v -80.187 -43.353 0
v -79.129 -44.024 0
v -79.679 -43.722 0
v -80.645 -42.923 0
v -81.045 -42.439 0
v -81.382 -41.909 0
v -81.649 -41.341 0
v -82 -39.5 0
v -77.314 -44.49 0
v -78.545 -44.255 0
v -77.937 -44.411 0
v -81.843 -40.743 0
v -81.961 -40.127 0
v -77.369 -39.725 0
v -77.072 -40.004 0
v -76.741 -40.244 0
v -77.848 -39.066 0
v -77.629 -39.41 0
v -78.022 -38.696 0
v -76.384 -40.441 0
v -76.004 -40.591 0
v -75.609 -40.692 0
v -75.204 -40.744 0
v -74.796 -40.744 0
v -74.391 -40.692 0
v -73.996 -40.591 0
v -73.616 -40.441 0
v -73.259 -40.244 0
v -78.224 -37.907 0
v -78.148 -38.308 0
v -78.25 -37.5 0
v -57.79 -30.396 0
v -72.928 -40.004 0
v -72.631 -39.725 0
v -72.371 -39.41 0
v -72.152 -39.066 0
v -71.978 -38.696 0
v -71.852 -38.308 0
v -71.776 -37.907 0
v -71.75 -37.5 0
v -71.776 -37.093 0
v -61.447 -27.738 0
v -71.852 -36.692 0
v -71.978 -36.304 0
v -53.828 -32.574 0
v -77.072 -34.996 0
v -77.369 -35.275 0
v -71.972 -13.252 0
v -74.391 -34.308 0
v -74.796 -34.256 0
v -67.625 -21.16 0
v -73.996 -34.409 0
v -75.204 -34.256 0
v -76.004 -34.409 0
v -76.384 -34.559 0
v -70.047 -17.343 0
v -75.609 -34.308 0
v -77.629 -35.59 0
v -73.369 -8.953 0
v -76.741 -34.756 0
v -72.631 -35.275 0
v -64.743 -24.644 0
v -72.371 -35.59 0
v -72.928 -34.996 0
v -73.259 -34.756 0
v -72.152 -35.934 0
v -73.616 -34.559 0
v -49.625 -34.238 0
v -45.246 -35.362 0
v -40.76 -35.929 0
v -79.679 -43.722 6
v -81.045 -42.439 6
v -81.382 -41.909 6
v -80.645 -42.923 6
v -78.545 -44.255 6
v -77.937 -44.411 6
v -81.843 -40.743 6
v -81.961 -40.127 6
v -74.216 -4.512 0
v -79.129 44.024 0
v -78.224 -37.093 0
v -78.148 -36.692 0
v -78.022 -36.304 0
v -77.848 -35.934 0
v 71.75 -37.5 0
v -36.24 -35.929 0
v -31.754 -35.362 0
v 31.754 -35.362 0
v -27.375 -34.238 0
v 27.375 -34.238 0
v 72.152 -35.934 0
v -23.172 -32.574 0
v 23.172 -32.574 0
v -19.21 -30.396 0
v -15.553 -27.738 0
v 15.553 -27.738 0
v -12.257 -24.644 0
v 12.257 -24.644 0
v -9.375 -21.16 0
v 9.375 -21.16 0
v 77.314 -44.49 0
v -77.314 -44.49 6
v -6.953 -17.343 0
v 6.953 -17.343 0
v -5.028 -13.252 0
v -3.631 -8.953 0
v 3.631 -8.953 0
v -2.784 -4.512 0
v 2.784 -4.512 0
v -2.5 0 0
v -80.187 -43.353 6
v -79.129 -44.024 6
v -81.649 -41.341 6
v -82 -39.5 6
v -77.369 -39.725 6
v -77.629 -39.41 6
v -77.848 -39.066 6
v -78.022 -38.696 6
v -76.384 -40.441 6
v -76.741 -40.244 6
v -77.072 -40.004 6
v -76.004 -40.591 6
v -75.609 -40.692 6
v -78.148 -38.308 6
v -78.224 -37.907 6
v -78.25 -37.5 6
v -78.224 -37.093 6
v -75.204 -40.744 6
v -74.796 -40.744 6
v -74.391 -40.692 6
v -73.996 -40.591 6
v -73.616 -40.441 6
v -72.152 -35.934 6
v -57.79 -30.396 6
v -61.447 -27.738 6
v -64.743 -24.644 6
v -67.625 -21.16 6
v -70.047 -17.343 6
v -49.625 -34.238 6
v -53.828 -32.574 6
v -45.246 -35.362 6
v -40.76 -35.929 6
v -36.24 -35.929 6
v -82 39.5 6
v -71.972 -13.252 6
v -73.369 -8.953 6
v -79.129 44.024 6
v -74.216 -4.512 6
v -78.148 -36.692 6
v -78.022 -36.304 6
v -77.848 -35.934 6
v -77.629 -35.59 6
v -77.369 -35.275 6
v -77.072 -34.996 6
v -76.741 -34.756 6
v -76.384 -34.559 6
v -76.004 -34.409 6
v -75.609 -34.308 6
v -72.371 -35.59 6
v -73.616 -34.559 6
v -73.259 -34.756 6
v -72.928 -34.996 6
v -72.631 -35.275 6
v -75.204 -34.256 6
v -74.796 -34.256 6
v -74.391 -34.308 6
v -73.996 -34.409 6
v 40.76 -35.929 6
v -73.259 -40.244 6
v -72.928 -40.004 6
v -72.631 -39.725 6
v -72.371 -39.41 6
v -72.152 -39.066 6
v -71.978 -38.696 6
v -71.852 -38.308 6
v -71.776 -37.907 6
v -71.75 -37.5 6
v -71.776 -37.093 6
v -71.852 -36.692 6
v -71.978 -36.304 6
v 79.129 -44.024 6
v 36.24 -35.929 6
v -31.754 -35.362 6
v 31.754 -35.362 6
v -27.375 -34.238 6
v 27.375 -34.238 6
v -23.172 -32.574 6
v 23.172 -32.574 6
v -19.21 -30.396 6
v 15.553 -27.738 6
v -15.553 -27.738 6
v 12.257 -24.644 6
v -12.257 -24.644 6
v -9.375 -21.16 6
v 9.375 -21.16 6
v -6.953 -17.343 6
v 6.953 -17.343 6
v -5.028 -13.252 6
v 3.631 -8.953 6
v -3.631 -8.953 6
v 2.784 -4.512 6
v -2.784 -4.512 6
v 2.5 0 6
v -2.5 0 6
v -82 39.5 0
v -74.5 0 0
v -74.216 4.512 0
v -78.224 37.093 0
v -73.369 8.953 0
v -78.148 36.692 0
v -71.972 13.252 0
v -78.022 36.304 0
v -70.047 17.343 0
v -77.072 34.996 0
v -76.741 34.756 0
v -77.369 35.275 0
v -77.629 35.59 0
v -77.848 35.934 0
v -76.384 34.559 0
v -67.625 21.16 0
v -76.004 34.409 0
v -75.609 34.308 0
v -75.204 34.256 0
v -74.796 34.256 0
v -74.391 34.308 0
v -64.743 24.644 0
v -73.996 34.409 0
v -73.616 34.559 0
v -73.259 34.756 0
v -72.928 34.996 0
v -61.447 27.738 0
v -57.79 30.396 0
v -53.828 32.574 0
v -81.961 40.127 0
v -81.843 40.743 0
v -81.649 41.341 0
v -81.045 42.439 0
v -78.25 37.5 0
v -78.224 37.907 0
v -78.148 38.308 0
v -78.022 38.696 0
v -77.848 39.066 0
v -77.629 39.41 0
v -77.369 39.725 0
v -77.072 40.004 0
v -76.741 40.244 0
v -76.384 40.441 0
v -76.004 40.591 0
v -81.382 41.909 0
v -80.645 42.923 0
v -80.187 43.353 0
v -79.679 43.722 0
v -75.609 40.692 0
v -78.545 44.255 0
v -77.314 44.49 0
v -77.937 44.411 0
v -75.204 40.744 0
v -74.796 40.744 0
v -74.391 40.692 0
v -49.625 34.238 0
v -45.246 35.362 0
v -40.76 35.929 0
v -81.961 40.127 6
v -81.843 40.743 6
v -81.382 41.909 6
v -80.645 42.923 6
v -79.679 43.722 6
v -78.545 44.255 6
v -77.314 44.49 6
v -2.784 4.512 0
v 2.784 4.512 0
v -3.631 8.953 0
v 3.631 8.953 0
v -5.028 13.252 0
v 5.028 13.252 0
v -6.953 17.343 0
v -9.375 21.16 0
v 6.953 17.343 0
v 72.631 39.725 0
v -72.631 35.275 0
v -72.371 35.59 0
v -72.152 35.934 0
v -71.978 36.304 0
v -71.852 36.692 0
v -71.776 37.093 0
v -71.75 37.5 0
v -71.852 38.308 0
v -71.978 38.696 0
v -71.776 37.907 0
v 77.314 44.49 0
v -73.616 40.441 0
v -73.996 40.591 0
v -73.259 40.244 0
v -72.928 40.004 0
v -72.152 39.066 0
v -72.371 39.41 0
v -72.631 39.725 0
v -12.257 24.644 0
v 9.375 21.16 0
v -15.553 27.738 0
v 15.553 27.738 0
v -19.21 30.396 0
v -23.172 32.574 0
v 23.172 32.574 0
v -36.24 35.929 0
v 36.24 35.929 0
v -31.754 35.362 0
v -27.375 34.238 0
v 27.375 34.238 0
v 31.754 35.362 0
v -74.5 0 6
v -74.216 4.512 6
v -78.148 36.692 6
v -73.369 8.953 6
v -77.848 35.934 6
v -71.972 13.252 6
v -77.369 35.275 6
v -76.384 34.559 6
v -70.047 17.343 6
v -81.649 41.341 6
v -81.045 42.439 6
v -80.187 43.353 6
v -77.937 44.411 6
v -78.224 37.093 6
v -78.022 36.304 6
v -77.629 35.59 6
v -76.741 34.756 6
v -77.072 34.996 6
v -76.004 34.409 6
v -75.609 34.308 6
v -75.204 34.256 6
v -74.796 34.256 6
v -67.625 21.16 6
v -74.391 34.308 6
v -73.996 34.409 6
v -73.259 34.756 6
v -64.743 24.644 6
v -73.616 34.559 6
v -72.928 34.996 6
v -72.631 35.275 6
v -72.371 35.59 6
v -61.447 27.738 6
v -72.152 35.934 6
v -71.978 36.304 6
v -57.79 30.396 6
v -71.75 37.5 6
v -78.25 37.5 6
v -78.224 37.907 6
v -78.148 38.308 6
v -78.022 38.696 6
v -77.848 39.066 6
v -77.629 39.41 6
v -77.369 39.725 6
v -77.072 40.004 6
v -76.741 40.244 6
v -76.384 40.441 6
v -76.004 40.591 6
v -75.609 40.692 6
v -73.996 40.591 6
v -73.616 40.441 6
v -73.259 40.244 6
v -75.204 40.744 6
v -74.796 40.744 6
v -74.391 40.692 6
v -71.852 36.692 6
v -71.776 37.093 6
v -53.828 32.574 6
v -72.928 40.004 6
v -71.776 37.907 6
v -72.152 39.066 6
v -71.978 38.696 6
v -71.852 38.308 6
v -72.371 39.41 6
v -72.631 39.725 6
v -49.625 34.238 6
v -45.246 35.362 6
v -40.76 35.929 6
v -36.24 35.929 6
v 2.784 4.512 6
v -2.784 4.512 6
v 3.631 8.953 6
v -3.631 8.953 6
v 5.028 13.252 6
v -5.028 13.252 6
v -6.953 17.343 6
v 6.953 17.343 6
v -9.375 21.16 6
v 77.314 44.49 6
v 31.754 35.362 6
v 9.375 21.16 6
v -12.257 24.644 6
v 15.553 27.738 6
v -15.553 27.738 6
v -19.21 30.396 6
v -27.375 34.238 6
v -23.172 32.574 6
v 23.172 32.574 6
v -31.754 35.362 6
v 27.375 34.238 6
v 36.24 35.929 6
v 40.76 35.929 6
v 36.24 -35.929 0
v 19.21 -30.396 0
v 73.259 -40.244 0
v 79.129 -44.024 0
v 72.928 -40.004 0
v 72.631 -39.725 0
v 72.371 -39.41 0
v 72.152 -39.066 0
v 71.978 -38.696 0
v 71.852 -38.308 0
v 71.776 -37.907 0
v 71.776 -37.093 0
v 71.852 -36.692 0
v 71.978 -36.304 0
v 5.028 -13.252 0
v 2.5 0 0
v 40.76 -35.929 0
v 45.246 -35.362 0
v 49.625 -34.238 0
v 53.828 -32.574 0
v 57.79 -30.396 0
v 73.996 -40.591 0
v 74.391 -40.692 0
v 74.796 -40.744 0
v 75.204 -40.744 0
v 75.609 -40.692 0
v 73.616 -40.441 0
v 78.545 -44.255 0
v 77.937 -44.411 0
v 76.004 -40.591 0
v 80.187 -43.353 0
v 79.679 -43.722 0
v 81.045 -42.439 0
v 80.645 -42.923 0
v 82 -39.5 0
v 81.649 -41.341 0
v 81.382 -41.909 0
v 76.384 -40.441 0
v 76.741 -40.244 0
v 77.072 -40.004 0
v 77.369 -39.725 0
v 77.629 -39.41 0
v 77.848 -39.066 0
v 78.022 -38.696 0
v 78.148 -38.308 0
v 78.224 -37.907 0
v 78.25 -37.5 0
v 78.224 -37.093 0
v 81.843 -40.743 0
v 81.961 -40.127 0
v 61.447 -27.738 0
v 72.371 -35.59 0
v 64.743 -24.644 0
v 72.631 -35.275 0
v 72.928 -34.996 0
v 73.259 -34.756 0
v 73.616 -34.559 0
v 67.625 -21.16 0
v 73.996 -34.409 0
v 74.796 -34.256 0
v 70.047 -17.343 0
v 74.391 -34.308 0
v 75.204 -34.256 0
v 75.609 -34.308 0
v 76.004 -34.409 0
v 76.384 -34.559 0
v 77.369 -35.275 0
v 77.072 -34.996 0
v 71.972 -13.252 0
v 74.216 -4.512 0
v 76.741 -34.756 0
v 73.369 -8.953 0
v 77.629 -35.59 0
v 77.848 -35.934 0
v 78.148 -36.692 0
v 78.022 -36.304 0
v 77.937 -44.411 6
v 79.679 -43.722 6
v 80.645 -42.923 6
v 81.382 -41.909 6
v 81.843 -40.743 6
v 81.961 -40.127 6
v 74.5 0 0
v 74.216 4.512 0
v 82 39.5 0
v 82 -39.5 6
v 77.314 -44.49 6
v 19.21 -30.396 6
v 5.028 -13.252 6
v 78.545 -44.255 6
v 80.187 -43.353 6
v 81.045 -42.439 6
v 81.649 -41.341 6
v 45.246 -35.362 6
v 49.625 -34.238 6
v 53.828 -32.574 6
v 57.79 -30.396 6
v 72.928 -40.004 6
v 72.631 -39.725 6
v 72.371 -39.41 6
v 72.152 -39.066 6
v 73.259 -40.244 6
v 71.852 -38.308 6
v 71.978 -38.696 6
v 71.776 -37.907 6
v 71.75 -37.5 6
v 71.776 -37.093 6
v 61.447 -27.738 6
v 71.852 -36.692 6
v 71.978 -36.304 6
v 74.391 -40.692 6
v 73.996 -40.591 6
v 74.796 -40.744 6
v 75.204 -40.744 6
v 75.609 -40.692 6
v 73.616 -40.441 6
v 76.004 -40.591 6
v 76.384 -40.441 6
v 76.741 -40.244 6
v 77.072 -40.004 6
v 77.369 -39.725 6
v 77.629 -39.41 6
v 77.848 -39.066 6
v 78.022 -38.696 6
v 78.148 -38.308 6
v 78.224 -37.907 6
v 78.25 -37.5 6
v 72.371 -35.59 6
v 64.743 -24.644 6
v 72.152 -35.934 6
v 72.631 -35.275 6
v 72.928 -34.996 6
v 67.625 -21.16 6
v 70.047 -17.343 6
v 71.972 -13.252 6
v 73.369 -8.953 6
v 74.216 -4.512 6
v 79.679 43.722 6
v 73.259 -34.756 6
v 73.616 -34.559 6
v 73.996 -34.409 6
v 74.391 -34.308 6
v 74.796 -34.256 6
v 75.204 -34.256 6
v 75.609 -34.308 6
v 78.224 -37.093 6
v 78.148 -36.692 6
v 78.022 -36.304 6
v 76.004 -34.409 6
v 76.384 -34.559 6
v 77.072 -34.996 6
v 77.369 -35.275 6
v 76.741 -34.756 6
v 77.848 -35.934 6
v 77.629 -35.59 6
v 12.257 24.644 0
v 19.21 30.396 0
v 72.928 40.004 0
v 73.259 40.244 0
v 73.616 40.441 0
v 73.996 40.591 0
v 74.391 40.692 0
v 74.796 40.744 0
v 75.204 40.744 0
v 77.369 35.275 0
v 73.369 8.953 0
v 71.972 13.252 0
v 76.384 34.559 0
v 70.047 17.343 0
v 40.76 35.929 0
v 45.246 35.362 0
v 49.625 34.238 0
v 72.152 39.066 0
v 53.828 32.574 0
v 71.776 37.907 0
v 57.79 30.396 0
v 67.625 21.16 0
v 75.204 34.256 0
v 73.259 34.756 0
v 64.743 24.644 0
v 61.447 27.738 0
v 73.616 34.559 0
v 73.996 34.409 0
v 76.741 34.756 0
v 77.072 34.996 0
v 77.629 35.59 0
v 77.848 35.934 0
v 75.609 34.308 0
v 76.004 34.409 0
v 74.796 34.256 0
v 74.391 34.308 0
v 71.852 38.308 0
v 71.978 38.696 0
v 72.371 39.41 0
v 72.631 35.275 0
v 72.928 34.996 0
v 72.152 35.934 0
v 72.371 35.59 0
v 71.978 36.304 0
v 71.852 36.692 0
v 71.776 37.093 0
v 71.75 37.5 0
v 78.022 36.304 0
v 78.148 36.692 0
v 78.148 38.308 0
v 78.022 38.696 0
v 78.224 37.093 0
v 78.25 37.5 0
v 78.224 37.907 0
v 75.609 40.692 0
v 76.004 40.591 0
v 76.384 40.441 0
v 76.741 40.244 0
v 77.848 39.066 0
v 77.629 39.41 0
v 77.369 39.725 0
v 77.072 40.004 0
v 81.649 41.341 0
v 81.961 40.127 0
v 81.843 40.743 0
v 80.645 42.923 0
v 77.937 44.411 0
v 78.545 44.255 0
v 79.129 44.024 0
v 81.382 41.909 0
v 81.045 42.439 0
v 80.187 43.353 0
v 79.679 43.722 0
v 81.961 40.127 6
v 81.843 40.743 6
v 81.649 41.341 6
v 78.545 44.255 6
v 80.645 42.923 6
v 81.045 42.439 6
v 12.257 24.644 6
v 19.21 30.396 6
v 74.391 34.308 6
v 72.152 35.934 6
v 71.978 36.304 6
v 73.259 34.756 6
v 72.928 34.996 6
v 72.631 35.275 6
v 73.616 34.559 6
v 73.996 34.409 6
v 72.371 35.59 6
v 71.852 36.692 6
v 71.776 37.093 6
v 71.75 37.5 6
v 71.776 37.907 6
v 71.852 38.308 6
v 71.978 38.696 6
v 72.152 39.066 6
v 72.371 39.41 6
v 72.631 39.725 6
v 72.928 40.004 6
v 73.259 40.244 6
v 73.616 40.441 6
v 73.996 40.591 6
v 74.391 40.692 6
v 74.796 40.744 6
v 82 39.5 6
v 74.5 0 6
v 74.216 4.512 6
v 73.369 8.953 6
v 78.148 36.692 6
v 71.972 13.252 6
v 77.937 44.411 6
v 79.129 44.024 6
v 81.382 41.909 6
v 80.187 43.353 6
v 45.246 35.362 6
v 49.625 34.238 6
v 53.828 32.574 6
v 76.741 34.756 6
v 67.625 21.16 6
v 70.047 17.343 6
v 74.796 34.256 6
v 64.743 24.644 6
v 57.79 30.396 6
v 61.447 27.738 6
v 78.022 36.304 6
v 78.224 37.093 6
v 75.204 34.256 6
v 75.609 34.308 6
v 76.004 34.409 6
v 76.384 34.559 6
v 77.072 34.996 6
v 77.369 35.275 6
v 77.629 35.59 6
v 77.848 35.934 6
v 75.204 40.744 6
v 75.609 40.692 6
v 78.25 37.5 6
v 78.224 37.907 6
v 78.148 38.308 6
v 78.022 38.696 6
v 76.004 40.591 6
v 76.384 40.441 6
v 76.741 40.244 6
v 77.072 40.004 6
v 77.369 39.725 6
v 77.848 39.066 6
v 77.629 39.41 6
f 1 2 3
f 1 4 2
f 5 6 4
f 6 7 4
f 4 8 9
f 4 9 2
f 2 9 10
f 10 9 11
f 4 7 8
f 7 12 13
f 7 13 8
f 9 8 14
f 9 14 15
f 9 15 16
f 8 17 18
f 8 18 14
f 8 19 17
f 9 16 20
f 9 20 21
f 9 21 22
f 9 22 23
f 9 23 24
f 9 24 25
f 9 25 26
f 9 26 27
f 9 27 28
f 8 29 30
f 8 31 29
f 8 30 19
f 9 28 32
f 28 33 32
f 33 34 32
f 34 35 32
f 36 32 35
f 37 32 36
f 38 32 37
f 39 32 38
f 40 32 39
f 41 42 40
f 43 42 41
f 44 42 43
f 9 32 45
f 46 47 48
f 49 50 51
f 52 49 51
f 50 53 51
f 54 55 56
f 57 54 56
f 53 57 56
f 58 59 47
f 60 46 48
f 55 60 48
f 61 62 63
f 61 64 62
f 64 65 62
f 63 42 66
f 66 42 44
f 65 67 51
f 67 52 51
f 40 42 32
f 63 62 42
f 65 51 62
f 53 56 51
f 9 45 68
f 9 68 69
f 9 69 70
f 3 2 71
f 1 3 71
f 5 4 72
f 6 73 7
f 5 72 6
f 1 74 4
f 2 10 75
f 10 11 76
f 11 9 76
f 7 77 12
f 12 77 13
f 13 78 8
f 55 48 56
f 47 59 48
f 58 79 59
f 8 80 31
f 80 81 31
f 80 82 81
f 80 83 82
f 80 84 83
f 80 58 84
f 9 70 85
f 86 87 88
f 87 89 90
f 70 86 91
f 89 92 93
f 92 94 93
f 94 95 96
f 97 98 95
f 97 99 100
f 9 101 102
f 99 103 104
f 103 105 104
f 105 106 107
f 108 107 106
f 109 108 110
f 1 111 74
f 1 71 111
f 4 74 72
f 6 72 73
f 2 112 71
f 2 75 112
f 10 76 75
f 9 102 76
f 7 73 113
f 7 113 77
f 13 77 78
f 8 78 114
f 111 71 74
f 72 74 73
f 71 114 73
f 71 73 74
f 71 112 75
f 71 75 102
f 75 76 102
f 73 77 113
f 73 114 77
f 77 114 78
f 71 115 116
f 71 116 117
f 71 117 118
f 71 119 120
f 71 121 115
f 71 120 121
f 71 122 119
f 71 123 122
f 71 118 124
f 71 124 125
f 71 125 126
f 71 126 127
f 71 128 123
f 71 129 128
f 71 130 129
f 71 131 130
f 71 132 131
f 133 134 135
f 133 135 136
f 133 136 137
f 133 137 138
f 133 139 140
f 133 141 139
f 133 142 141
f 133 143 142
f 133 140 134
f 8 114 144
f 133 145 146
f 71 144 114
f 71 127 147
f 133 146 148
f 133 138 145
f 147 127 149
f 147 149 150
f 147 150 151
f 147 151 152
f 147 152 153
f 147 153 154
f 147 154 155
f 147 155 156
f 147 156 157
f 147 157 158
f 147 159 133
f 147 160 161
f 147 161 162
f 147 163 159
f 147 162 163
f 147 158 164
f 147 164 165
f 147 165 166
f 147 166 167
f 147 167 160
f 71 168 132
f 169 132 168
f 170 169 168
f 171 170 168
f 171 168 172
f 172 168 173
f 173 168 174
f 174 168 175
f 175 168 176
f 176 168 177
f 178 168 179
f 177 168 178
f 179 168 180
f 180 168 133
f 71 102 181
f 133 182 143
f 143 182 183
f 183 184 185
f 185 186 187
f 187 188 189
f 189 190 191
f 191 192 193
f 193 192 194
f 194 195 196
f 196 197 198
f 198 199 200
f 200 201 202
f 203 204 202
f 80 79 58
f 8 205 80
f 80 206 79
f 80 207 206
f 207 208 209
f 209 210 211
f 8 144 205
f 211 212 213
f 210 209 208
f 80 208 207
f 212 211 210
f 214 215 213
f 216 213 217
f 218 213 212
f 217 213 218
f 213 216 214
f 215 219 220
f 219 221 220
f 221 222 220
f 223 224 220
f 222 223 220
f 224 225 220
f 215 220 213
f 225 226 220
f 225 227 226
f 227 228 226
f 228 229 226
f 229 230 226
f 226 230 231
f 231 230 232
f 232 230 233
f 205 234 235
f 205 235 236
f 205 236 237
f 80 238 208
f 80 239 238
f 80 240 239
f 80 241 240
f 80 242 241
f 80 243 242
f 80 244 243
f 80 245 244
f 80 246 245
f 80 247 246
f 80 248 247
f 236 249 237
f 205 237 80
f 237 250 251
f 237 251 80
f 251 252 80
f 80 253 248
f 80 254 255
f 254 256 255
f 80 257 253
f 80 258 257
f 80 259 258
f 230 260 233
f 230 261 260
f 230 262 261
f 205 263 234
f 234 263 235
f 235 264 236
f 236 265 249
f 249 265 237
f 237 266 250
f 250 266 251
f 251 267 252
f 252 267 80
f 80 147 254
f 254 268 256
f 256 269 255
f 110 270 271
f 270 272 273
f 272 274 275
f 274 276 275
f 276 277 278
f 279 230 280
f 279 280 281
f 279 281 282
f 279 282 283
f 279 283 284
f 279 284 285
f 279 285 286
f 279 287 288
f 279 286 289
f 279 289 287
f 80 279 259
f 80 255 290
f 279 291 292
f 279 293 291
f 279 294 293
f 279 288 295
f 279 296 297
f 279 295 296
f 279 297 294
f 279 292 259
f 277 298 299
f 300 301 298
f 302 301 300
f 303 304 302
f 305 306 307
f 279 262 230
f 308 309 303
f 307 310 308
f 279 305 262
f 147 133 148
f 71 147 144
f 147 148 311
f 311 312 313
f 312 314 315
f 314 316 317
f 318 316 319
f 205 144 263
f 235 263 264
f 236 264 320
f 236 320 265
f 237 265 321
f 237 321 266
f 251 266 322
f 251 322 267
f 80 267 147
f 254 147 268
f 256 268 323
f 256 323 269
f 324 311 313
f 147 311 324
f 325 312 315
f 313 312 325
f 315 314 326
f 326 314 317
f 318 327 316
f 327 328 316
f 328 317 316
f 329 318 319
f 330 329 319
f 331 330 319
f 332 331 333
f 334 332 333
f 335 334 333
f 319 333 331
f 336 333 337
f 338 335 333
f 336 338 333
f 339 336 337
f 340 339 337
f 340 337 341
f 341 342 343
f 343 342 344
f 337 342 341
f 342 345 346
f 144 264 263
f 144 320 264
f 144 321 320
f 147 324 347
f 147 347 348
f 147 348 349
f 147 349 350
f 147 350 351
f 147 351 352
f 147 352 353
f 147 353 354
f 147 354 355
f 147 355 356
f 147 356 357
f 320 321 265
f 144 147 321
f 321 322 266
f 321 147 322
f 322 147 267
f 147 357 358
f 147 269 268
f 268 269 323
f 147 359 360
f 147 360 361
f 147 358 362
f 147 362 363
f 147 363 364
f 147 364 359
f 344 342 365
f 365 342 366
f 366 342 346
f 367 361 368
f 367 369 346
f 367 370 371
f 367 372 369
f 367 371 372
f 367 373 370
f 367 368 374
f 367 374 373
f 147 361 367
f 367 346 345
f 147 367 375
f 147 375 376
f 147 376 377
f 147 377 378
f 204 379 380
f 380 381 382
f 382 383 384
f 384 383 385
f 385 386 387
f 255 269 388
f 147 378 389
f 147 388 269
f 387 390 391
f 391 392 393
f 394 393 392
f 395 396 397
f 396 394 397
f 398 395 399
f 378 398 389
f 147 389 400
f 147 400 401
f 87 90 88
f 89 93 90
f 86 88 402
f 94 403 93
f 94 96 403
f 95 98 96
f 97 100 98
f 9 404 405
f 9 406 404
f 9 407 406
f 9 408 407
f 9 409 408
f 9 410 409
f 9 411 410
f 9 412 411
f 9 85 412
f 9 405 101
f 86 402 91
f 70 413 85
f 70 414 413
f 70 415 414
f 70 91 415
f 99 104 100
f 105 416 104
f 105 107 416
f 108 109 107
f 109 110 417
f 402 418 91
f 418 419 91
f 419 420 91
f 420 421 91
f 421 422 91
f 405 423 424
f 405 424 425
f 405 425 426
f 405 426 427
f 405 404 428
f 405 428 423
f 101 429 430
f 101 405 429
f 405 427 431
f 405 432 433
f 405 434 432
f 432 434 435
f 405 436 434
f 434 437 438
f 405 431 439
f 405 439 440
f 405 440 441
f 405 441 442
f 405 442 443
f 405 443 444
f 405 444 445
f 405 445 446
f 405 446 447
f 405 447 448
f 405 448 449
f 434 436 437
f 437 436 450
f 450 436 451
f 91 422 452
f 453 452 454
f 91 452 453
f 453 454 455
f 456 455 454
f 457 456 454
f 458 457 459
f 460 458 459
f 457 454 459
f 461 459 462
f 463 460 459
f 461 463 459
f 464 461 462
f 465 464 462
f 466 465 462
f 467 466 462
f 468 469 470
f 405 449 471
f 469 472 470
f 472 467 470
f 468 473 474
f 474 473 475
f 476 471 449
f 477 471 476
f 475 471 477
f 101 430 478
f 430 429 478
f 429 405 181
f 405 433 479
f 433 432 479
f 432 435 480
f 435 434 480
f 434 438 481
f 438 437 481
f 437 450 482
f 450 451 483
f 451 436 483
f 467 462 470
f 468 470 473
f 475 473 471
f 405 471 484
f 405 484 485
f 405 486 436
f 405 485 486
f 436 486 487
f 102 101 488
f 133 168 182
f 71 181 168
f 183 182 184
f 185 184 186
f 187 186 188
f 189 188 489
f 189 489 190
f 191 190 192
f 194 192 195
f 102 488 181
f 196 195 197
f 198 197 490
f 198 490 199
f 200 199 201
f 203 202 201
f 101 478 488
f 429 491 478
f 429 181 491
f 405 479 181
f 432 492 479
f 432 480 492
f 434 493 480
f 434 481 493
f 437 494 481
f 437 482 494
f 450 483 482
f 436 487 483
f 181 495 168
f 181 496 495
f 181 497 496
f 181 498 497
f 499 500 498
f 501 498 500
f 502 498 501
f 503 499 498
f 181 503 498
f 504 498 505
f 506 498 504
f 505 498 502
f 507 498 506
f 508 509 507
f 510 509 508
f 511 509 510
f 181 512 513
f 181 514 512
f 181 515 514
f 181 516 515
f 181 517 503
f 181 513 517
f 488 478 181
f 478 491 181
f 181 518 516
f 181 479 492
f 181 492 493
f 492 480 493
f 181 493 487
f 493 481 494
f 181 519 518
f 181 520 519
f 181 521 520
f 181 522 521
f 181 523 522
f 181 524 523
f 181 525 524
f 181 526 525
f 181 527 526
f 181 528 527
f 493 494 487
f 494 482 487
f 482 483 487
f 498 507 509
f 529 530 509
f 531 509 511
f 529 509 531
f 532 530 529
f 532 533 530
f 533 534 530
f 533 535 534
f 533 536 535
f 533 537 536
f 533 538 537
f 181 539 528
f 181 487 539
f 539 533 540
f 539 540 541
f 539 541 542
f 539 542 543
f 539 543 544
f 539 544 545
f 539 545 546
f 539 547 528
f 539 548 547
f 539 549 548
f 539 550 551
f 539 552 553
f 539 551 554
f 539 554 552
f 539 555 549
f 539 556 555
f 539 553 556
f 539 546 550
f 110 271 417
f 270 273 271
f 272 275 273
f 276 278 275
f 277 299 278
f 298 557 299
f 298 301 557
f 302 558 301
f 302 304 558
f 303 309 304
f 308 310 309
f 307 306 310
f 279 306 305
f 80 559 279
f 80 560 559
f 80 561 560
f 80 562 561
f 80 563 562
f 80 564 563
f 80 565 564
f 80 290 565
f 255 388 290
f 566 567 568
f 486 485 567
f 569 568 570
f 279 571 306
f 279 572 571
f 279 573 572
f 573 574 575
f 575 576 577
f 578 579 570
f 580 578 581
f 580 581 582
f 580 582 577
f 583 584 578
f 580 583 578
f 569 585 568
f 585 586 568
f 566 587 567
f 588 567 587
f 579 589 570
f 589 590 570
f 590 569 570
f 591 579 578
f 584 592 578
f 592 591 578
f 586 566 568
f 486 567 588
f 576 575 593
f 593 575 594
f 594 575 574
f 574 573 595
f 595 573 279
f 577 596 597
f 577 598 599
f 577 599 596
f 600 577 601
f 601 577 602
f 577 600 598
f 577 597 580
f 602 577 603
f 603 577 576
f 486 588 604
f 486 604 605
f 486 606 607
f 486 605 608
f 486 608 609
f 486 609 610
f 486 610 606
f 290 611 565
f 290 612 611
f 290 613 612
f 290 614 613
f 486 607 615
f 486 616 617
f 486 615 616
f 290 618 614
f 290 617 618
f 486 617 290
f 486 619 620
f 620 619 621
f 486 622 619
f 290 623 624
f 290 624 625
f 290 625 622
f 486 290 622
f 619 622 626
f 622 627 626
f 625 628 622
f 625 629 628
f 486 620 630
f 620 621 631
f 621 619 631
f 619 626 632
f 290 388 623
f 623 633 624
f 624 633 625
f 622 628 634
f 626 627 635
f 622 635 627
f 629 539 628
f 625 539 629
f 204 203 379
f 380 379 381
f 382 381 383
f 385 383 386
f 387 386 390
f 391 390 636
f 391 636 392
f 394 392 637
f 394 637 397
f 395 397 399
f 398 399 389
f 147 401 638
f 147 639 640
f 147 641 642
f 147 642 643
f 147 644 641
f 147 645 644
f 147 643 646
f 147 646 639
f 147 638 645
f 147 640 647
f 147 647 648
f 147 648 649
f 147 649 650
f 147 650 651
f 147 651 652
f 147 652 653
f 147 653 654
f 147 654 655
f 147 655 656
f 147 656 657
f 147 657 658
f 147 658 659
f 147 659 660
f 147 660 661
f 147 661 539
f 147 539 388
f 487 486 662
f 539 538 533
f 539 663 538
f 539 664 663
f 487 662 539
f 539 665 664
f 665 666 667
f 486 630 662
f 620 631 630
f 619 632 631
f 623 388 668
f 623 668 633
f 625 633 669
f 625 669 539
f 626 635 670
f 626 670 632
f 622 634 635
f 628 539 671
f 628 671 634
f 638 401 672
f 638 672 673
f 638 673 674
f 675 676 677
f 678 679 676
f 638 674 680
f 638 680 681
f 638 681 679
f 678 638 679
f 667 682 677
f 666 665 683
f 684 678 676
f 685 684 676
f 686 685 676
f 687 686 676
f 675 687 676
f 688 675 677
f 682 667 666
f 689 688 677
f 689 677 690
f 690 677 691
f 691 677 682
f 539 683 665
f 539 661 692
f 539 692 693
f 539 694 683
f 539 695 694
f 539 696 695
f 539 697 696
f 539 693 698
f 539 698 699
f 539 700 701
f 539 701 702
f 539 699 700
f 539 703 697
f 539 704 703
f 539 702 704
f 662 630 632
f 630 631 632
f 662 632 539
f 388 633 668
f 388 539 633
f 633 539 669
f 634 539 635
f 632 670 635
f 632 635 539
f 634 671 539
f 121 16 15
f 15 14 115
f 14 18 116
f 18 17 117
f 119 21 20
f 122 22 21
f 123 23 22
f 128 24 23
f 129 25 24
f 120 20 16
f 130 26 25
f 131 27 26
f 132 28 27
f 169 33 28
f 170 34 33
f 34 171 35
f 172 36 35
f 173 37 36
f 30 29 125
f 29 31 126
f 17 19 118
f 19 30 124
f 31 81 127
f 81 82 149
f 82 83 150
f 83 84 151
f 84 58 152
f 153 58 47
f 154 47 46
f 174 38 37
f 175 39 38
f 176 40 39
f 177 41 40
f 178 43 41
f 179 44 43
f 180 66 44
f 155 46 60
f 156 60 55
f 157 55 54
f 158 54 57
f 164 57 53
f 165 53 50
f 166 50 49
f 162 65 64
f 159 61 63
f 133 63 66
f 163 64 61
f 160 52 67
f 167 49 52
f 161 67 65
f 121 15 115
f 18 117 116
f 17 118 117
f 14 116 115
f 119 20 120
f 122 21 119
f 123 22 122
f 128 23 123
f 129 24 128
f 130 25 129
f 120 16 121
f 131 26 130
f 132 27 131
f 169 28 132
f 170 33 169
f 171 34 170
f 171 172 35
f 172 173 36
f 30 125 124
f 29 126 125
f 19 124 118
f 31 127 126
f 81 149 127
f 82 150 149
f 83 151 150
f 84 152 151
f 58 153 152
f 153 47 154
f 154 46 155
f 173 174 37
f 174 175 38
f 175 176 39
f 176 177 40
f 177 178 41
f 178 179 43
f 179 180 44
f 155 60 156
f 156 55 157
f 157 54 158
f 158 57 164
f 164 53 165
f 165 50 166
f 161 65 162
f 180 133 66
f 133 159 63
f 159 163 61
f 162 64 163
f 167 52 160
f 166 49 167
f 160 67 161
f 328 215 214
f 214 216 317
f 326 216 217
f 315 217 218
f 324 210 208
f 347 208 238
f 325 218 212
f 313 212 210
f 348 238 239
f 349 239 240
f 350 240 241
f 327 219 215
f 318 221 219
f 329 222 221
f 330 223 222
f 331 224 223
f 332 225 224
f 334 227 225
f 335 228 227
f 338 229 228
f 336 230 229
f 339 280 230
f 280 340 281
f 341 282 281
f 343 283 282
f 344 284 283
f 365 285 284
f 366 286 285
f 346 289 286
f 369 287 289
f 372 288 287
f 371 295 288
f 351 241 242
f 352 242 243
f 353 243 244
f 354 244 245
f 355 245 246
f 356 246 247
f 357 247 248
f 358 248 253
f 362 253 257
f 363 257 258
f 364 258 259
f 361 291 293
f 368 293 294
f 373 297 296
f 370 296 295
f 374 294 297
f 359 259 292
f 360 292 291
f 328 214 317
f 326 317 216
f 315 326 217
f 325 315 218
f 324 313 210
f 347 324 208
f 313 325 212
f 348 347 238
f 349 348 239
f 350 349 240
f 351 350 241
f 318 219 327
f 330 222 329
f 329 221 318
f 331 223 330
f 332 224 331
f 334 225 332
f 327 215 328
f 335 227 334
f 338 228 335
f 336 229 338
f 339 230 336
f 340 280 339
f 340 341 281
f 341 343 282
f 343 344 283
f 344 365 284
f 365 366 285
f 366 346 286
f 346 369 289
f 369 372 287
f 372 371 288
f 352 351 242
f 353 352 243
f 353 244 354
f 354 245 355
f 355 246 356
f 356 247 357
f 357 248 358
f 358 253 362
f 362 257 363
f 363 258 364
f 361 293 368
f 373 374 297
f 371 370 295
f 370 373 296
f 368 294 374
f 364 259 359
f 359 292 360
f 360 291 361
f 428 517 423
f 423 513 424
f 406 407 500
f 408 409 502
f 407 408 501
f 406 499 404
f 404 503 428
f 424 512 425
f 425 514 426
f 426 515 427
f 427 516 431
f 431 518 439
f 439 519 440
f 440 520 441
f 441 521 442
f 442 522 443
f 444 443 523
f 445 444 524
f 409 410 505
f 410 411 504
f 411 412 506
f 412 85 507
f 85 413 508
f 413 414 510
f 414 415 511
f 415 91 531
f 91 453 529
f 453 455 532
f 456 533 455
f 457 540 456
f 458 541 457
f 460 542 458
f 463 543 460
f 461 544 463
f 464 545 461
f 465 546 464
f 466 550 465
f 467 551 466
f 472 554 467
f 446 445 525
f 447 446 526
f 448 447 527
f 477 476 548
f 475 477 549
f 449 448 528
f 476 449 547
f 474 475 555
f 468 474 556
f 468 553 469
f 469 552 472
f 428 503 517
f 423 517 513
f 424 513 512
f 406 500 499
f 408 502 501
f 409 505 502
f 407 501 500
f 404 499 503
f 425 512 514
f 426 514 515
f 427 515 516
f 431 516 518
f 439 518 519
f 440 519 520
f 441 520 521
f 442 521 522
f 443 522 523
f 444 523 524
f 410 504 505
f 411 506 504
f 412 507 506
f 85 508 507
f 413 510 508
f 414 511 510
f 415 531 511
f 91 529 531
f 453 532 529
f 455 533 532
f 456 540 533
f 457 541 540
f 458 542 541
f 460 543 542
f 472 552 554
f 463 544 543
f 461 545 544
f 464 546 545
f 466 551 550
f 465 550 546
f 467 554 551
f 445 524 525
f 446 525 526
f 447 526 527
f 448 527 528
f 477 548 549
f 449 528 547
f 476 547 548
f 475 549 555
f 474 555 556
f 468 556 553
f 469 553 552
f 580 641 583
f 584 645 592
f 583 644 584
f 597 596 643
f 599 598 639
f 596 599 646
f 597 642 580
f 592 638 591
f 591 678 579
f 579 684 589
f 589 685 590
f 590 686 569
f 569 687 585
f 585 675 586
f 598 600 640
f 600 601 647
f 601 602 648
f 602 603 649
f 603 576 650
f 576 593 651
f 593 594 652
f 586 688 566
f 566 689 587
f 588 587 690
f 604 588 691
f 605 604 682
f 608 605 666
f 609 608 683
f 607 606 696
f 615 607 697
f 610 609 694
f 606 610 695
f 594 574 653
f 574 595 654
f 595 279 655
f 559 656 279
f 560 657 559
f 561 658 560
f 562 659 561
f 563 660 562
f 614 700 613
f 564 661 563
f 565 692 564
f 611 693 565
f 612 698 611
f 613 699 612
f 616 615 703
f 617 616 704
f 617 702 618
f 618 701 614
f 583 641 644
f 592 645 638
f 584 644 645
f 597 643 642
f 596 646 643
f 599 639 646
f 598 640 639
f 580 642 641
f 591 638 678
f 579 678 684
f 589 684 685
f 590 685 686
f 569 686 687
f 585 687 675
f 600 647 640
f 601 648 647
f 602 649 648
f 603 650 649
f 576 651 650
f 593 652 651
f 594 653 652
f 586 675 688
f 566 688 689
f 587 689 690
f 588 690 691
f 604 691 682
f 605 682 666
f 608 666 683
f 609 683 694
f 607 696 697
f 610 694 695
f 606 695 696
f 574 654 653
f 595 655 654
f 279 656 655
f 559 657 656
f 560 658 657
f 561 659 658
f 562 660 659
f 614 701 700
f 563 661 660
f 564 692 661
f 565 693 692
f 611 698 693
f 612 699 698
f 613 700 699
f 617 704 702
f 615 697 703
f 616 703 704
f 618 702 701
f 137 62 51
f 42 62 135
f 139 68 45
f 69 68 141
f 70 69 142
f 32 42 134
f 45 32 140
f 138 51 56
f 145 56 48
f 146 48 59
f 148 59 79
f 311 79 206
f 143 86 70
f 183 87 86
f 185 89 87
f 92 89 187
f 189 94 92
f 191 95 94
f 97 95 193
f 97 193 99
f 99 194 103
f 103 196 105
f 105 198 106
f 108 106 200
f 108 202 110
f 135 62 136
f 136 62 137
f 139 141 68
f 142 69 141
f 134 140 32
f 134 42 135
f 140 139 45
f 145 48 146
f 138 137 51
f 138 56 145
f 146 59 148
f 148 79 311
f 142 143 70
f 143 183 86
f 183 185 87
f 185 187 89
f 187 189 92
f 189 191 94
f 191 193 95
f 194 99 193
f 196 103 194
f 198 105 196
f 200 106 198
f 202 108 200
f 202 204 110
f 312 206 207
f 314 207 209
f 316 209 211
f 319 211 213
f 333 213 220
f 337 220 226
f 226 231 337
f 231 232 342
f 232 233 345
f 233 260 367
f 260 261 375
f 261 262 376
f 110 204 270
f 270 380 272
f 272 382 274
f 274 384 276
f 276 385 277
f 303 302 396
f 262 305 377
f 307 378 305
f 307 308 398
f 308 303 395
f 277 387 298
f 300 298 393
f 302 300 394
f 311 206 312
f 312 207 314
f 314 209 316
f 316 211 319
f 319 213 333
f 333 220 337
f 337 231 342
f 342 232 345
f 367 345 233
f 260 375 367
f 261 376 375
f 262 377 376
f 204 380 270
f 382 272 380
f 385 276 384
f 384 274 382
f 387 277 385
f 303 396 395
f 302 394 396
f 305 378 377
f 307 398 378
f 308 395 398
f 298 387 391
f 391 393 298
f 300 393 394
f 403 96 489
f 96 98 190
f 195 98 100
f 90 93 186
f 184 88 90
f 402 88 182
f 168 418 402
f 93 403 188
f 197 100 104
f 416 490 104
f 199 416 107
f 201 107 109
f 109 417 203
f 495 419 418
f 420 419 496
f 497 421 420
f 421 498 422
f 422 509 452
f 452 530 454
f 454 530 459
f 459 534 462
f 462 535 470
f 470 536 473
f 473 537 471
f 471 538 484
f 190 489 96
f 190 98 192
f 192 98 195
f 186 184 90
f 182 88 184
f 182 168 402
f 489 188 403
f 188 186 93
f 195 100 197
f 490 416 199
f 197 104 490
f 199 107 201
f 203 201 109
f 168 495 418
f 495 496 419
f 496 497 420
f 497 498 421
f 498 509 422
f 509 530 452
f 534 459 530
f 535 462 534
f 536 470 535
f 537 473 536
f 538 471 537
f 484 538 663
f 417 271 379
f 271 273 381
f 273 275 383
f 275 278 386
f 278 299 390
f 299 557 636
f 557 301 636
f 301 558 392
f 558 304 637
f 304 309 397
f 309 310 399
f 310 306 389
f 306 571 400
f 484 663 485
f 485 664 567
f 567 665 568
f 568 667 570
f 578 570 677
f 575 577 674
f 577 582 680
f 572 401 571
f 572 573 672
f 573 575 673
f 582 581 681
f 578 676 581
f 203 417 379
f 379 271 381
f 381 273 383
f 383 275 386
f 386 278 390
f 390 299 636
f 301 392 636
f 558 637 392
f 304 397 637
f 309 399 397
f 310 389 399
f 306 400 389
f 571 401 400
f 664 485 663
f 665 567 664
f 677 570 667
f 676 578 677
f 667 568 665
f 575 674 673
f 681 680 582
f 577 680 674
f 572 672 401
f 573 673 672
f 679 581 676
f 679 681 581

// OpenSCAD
$fn = 50;

difference() {
	union() {
		hull() {
			translate(v = [-77.0, 39.5, 0]) {
				cylinder(h = 6, r = 5);
			}
			translate(v = [77.0, 39.5, 0]) {
				cylinder(h = 6, r = 5);
			}
			translate(v = [-77.0, -39.5, 0]) {
				cylinder(h = 6, r = 5);
			}
			translate(v = [77.0, -39.5, 0]) {
				cylinder(h = 6, r = 5);
			}
		}
	}
	union() {
		translate(v = [-75.0, -37.5, -100.0]) {
			cylinder(h = 200, r = 3.25);
		}
		translate(v = [-75.0, 37.5, -100.0]) {
			cylinder(h = 200, r = 3.25);
		}
		translate(v = [75.0, -37.5, -100.0]) {
			cylinder(h = 200, r = 3.25);
		}
		translate(v = [75.0, 37.5, -100.0]) {
			cylinder(h = 200, r = 3.25);
		}
		translate(v = [-75.0, -37.5, -100.0]) {
			cylinder(h = 200, r = 1.8);
		}
		translate(v = [-75.0, 37.5, -100.0]) {
			cylinder(h = 200, r = 1.8);
		}
		translate(v = [75.0, -37.5, -100.0]) {
			cylinder(h = 200, r = 1.8);
		}
		translate(v = [75.0, 37.5, -100.0]) {
			cylinder(h = 200, r = 1.8);
		}
		translate(v = [-38.5, 0, 0.0]) {
			cylinder(h = 6, r = 36.0);
		}
		translate(v = [38.5, 0, 0.0]) {
			cylinder(h = 6, r = 36.0);
		}
	}
}
